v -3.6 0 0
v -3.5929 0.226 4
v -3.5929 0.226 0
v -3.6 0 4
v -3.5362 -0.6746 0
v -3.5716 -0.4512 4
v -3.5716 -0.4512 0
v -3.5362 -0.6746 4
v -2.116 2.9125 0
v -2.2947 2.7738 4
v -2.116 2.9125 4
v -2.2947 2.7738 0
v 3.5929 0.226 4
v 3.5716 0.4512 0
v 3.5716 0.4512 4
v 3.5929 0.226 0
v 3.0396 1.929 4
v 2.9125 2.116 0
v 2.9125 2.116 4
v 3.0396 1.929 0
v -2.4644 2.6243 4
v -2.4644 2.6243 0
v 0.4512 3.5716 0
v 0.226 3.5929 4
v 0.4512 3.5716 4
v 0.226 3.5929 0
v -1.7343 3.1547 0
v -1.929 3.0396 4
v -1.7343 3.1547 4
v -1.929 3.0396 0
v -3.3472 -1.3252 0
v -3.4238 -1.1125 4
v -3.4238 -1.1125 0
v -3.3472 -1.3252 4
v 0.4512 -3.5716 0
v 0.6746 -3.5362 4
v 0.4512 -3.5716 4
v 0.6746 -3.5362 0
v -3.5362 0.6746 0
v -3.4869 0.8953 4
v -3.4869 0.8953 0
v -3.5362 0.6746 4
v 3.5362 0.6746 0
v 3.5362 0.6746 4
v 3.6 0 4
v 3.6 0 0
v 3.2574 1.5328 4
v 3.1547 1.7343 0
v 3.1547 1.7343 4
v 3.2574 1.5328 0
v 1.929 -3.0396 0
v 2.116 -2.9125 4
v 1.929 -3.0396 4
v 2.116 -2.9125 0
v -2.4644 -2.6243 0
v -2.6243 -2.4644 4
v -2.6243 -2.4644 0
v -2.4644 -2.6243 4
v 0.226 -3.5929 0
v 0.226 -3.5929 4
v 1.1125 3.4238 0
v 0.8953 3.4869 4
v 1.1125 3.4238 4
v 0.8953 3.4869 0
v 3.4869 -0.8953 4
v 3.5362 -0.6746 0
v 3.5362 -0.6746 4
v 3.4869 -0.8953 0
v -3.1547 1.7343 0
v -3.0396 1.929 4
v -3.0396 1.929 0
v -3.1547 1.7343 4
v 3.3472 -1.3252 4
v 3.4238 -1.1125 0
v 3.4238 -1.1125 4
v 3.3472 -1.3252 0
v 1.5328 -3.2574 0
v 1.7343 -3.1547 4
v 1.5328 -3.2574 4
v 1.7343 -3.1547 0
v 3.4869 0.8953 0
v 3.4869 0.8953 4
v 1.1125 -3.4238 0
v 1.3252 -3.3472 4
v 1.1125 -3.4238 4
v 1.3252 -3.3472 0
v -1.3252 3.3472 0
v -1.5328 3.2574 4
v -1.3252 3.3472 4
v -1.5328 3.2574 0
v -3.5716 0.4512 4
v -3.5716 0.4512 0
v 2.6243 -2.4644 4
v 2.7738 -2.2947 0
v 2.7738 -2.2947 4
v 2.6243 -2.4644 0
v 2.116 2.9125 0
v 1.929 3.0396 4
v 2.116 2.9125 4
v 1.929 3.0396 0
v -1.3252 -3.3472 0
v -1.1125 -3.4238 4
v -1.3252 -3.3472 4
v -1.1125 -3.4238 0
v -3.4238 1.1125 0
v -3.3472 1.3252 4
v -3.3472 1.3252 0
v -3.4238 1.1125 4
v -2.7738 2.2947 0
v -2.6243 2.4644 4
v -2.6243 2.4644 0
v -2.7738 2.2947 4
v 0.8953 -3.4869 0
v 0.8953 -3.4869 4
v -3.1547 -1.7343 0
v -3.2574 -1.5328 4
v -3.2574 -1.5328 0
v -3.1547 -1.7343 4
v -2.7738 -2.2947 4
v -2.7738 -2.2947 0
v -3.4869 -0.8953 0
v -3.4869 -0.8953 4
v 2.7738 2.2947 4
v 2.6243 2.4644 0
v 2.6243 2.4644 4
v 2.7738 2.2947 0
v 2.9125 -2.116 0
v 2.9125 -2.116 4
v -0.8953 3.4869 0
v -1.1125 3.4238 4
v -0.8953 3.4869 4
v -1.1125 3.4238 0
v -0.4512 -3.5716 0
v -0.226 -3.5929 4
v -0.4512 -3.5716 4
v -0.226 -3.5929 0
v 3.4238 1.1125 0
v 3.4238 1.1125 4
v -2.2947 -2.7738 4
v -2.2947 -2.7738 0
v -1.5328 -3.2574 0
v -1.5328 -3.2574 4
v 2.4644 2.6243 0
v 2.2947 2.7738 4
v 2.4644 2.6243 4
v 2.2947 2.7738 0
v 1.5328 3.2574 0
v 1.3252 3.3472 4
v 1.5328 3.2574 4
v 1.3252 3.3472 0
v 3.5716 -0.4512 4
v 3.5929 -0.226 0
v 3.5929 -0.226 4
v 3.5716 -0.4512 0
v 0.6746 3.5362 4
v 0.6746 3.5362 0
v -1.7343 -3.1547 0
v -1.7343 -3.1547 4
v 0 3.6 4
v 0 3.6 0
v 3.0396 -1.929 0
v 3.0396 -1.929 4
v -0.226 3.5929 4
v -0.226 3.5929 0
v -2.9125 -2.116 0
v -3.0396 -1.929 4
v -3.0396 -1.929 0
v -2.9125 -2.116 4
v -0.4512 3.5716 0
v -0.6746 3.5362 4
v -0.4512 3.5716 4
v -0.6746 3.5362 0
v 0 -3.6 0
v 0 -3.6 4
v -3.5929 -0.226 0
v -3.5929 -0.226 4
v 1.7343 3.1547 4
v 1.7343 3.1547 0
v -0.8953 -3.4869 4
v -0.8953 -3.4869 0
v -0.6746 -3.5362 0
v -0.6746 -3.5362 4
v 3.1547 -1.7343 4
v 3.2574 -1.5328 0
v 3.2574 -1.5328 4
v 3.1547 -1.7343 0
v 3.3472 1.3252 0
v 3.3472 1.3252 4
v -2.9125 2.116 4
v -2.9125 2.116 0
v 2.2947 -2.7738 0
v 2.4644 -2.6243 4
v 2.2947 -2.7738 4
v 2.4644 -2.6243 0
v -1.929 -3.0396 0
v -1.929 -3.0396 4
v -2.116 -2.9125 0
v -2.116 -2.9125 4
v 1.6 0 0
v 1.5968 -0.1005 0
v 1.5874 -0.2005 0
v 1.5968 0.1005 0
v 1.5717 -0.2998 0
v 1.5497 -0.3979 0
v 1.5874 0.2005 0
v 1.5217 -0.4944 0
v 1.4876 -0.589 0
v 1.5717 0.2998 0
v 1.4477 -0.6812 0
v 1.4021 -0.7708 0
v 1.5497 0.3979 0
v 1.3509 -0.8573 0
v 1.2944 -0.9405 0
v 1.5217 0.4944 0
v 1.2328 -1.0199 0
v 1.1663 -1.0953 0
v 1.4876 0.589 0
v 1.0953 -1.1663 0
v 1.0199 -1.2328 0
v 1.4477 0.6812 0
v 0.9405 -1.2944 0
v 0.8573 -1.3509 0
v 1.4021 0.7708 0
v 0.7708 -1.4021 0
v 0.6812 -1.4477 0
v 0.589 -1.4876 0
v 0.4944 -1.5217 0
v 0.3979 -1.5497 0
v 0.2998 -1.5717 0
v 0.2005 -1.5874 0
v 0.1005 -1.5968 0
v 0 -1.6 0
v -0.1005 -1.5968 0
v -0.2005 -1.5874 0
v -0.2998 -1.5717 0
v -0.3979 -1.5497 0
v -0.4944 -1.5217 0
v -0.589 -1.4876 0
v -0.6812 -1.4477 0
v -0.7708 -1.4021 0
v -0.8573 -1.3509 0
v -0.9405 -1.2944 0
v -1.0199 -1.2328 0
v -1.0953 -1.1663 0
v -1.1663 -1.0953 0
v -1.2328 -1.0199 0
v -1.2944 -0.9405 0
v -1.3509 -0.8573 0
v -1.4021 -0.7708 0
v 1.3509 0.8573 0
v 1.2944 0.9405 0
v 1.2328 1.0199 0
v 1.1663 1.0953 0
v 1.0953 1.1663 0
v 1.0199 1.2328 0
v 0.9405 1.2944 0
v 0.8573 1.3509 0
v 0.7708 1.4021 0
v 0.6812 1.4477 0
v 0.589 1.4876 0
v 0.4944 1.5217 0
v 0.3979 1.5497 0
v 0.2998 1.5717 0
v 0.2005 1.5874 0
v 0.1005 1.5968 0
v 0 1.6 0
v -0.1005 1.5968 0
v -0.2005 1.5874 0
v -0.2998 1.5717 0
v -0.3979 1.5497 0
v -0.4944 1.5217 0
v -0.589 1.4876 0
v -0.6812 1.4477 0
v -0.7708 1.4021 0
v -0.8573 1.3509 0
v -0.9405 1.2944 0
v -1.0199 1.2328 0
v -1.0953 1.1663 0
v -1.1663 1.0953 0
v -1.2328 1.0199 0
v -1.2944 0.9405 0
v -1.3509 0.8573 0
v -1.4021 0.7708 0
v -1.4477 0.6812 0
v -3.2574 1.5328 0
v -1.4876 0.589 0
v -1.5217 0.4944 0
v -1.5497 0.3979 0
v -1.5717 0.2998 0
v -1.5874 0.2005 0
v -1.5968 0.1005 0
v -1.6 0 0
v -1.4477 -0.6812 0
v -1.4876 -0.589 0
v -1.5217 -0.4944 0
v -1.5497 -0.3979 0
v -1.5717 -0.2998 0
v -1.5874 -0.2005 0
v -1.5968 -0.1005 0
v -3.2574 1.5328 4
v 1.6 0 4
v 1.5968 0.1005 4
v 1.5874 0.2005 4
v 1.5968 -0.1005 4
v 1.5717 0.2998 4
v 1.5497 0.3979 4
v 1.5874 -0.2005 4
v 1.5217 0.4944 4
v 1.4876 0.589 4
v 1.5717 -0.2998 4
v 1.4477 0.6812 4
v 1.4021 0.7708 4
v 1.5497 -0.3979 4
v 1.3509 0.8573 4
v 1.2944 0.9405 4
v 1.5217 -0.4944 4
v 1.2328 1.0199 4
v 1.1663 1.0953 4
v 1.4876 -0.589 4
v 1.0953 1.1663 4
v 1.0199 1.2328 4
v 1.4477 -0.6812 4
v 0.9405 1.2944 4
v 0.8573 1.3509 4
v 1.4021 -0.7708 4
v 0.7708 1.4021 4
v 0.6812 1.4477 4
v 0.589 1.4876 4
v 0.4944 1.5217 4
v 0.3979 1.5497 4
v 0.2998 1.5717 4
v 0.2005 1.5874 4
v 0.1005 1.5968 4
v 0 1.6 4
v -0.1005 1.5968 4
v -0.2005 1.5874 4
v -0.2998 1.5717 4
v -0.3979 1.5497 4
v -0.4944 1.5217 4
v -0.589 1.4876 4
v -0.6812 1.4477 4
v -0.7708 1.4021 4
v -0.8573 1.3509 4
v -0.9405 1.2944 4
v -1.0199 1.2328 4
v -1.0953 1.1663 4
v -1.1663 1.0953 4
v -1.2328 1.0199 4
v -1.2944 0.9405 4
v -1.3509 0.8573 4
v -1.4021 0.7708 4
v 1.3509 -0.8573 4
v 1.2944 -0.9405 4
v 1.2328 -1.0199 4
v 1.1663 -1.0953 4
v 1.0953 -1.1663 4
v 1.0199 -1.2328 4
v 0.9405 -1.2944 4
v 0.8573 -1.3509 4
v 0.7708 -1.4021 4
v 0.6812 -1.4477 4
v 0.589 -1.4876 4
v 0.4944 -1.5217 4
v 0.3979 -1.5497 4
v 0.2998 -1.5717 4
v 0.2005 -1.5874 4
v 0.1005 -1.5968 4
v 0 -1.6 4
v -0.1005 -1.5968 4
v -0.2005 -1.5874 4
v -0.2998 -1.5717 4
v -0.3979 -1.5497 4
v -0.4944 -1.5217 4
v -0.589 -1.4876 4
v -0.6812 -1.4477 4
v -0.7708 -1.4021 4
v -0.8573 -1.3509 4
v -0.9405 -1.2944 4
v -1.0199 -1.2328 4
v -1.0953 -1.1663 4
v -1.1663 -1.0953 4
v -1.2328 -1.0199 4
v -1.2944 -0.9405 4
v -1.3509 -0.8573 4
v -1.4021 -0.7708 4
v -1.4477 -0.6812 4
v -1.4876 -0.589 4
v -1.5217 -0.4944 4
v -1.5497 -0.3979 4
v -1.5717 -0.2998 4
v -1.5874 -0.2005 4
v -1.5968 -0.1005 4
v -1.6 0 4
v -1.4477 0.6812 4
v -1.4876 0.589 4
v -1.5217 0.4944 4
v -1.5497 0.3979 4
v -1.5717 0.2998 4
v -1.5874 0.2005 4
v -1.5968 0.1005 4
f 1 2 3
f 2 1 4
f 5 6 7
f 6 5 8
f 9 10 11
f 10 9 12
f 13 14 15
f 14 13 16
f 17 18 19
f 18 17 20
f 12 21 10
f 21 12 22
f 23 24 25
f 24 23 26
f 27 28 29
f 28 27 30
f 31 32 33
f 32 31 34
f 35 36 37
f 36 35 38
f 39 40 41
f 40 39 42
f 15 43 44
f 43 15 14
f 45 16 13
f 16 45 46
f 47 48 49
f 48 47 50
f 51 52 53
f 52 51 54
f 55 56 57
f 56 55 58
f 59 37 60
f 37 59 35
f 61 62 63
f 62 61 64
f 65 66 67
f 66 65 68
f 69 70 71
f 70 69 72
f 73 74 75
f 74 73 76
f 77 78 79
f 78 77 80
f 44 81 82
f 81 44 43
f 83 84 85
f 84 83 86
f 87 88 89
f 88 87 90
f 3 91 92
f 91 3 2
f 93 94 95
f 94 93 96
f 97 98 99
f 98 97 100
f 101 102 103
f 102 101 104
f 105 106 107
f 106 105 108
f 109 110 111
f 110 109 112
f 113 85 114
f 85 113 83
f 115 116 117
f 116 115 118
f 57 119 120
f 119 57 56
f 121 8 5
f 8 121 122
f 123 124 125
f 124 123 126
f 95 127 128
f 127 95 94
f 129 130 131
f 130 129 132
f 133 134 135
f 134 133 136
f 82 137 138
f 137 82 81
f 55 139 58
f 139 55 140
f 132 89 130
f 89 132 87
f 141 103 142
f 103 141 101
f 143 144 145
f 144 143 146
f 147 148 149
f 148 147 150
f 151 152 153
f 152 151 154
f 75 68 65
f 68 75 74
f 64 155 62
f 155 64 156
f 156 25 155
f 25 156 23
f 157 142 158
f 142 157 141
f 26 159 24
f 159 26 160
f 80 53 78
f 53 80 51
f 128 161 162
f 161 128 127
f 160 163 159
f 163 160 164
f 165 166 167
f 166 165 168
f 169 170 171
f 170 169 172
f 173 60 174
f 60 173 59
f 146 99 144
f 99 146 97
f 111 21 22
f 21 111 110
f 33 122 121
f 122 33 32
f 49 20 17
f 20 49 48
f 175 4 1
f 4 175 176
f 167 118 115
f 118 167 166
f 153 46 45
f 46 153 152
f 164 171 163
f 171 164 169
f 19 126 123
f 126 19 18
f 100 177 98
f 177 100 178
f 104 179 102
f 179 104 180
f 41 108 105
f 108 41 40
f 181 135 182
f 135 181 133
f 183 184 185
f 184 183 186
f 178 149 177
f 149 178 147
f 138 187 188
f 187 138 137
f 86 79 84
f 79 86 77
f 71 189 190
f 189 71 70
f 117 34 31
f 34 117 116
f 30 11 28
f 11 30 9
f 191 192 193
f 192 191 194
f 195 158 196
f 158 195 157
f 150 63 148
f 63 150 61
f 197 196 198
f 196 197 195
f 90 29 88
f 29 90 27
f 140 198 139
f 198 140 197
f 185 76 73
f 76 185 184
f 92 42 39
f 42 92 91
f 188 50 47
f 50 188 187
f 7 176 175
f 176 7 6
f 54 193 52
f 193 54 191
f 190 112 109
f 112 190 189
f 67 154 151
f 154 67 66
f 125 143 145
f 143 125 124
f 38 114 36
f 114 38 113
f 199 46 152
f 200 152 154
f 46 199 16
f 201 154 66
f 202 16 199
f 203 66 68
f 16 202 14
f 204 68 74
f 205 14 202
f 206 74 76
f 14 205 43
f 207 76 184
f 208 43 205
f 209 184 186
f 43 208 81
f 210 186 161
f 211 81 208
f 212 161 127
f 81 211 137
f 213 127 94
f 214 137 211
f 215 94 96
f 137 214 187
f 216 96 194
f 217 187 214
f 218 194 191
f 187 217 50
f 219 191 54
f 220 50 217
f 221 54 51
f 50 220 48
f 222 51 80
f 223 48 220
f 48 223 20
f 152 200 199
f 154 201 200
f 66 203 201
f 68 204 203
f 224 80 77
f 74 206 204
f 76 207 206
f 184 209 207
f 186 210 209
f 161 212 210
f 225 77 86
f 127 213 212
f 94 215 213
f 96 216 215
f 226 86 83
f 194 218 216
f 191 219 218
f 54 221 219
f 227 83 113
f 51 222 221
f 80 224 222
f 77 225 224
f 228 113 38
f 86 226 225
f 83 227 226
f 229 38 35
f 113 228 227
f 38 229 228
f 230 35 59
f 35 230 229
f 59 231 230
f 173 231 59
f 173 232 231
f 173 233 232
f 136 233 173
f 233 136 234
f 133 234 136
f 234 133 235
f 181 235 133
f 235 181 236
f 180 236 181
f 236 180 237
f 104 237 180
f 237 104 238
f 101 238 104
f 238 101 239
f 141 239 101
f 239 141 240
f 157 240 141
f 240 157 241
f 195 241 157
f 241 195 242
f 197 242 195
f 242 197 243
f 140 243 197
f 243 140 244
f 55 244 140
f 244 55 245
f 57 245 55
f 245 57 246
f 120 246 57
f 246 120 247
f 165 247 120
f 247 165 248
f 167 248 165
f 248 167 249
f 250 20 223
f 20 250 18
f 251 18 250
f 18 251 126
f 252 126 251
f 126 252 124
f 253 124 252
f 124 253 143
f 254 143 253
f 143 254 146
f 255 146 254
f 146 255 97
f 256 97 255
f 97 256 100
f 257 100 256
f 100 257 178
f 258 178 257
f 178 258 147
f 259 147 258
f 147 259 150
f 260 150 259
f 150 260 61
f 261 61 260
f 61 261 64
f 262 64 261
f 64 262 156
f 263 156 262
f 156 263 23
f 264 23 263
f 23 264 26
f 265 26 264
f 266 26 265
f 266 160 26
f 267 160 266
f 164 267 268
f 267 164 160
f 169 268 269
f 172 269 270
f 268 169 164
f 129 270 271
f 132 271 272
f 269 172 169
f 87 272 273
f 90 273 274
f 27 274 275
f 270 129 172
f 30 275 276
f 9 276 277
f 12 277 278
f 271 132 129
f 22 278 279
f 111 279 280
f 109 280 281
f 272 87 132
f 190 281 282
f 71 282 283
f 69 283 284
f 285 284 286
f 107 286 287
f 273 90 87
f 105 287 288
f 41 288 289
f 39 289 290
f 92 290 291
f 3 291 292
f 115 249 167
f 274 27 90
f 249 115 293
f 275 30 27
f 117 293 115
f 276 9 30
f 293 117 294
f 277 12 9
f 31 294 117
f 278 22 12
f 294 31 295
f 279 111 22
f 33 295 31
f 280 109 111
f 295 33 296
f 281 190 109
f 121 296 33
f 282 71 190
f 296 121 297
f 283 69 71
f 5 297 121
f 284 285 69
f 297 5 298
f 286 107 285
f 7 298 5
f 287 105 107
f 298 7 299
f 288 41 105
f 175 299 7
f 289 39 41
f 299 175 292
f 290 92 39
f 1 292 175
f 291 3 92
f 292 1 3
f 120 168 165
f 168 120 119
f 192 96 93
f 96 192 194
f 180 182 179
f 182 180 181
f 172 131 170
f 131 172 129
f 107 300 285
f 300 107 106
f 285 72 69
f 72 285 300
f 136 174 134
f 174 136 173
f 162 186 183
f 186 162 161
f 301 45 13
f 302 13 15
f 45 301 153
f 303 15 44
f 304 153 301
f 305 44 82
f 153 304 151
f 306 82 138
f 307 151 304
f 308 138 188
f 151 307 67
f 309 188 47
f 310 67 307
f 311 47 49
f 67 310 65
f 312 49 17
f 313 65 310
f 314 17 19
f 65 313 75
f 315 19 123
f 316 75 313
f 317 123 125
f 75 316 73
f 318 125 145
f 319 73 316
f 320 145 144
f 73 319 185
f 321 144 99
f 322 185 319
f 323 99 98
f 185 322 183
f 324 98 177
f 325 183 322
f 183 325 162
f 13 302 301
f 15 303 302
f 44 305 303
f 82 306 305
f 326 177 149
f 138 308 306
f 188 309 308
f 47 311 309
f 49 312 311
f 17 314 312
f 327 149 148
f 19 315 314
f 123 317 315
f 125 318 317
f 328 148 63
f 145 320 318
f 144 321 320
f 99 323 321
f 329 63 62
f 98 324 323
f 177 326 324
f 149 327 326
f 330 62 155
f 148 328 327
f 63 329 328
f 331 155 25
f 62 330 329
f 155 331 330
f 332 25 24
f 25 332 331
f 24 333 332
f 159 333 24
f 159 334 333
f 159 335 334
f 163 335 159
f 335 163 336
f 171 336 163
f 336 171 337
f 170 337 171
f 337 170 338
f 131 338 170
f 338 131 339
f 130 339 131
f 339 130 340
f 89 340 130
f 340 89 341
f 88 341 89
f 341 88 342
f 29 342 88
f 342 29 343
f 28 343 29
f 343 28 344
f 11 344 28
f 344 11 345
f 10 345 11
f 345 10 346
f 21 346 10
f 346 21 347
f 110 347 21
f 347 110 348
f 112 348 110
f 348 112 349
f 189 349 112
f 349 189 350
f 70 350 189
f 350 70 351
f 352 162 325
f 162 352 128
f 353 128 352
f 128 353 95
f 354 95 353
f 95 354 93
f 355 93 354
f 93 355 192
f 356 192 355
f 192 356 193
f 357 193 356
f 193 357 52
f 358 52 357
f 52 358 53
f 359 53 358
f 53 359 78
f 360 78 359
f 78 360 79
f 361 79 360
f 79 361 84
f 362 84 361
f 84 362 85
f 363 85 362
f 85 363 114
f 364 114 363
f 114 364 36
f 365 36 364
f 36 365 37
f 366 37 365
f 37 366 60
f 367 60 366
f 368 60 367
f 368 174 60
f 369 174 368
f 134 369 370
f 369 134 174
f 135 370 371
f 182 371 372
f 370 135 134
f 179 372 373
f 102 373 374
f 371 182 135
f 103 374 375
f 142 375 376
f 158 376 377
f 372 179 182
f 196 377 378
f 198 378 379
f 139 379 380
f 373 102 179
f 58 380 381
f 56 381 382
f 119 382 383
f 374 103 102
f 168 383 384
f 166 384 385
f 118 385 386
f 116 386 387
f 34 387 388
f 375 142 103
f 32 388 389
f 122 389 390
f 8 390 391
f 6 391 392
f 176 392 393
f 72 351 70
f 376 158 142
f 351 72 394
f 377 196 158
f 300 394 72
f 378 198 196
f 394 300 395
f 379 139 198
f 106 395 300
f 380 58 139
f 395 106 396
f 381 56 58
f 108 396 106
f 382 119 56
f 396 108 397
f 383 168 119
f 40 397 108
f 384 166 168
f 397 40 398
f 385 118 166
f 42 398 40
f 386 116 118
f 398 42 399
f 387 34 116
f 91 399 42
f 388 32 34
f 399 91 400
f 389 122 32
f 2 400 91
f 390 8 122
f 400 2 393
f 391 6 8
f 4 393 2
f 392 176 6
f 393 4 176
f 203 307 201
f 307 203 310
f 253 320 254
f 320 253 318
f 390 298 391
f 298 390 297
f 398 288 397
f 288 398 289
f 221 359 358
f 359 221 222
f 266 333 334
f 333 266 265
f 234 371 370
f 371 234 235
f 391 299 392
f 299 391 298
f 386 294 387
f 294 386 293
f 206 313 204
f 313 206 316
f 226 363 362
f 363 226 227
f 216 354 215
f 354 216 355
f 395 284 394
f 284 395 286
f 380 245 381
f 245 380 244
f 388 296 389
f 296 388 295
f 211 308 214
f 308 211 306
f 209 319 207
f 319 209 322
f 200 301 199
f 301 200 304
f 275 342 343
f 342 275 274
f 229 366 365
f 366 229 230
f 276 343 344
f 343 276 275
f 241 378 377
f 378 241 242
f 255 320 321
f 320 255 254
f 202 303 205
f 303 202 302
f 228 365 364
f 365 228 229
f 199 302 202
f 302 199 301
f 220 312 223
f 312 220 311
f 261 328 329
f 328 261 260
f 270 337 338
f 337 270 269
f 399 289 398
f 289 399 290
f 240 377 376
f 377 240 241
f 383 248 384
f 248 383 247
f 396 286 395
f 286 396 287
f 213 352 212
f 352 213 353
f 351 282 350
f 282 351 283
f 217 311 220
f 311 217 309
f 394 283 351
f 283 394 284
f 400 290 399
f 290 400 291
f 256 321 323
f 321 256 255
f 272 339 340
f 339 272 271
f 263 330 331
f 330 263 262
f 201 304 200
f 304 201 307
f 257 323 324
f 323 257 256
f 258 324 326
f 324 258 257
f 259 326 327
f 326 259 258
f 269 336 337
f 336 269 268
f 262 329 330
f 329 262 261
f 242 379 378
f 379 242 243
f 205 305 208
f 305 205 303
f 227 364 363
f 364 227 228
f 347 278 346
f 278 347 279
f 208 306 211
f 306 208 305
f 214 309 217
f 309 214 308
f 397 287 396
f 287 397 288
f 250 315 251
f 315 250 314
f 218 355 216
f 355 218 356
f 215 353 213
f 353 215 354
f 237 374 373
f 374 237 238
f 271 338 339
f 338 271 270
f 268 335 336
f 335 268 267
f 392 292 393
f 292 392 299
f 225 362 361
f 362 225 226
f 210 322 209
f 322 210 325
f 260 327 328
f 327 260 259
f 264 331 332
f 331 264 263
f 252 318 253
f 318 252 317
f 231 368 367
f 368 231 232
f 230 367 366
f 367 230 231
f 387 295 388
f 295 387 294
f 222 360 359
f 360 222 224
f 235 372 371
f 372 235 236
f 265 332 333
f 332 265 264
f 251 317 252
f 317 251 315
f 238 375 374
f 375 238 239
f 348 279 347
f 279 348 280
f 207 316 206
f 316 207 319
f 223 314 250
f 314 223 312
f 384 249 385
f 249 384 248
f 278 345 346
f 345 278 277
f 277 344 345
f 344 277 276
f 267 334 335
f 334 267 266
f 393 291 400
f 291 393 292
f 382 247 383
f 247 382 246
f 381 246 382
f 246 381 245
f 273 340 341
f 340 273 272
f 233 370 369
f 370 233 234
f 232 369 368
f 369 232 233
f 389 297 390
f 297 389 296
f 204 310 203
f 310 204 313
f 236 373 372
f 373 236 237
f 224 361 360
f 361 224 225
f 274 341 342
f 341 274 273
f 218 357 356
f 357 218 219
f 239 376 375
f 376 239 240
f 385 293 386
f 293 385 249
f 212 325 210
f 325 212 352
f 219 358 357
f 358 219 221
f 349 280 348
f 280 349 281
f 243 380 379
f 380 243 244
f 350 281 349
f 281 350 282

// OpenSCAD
h = 4;
inner_d = 3.2;
outer_d = inner_d + 2*2;
$fn=100;

difference(){
    cylinder(h=h, d=outer_d);
    cylinder(h=h, d=inner_d);
}
